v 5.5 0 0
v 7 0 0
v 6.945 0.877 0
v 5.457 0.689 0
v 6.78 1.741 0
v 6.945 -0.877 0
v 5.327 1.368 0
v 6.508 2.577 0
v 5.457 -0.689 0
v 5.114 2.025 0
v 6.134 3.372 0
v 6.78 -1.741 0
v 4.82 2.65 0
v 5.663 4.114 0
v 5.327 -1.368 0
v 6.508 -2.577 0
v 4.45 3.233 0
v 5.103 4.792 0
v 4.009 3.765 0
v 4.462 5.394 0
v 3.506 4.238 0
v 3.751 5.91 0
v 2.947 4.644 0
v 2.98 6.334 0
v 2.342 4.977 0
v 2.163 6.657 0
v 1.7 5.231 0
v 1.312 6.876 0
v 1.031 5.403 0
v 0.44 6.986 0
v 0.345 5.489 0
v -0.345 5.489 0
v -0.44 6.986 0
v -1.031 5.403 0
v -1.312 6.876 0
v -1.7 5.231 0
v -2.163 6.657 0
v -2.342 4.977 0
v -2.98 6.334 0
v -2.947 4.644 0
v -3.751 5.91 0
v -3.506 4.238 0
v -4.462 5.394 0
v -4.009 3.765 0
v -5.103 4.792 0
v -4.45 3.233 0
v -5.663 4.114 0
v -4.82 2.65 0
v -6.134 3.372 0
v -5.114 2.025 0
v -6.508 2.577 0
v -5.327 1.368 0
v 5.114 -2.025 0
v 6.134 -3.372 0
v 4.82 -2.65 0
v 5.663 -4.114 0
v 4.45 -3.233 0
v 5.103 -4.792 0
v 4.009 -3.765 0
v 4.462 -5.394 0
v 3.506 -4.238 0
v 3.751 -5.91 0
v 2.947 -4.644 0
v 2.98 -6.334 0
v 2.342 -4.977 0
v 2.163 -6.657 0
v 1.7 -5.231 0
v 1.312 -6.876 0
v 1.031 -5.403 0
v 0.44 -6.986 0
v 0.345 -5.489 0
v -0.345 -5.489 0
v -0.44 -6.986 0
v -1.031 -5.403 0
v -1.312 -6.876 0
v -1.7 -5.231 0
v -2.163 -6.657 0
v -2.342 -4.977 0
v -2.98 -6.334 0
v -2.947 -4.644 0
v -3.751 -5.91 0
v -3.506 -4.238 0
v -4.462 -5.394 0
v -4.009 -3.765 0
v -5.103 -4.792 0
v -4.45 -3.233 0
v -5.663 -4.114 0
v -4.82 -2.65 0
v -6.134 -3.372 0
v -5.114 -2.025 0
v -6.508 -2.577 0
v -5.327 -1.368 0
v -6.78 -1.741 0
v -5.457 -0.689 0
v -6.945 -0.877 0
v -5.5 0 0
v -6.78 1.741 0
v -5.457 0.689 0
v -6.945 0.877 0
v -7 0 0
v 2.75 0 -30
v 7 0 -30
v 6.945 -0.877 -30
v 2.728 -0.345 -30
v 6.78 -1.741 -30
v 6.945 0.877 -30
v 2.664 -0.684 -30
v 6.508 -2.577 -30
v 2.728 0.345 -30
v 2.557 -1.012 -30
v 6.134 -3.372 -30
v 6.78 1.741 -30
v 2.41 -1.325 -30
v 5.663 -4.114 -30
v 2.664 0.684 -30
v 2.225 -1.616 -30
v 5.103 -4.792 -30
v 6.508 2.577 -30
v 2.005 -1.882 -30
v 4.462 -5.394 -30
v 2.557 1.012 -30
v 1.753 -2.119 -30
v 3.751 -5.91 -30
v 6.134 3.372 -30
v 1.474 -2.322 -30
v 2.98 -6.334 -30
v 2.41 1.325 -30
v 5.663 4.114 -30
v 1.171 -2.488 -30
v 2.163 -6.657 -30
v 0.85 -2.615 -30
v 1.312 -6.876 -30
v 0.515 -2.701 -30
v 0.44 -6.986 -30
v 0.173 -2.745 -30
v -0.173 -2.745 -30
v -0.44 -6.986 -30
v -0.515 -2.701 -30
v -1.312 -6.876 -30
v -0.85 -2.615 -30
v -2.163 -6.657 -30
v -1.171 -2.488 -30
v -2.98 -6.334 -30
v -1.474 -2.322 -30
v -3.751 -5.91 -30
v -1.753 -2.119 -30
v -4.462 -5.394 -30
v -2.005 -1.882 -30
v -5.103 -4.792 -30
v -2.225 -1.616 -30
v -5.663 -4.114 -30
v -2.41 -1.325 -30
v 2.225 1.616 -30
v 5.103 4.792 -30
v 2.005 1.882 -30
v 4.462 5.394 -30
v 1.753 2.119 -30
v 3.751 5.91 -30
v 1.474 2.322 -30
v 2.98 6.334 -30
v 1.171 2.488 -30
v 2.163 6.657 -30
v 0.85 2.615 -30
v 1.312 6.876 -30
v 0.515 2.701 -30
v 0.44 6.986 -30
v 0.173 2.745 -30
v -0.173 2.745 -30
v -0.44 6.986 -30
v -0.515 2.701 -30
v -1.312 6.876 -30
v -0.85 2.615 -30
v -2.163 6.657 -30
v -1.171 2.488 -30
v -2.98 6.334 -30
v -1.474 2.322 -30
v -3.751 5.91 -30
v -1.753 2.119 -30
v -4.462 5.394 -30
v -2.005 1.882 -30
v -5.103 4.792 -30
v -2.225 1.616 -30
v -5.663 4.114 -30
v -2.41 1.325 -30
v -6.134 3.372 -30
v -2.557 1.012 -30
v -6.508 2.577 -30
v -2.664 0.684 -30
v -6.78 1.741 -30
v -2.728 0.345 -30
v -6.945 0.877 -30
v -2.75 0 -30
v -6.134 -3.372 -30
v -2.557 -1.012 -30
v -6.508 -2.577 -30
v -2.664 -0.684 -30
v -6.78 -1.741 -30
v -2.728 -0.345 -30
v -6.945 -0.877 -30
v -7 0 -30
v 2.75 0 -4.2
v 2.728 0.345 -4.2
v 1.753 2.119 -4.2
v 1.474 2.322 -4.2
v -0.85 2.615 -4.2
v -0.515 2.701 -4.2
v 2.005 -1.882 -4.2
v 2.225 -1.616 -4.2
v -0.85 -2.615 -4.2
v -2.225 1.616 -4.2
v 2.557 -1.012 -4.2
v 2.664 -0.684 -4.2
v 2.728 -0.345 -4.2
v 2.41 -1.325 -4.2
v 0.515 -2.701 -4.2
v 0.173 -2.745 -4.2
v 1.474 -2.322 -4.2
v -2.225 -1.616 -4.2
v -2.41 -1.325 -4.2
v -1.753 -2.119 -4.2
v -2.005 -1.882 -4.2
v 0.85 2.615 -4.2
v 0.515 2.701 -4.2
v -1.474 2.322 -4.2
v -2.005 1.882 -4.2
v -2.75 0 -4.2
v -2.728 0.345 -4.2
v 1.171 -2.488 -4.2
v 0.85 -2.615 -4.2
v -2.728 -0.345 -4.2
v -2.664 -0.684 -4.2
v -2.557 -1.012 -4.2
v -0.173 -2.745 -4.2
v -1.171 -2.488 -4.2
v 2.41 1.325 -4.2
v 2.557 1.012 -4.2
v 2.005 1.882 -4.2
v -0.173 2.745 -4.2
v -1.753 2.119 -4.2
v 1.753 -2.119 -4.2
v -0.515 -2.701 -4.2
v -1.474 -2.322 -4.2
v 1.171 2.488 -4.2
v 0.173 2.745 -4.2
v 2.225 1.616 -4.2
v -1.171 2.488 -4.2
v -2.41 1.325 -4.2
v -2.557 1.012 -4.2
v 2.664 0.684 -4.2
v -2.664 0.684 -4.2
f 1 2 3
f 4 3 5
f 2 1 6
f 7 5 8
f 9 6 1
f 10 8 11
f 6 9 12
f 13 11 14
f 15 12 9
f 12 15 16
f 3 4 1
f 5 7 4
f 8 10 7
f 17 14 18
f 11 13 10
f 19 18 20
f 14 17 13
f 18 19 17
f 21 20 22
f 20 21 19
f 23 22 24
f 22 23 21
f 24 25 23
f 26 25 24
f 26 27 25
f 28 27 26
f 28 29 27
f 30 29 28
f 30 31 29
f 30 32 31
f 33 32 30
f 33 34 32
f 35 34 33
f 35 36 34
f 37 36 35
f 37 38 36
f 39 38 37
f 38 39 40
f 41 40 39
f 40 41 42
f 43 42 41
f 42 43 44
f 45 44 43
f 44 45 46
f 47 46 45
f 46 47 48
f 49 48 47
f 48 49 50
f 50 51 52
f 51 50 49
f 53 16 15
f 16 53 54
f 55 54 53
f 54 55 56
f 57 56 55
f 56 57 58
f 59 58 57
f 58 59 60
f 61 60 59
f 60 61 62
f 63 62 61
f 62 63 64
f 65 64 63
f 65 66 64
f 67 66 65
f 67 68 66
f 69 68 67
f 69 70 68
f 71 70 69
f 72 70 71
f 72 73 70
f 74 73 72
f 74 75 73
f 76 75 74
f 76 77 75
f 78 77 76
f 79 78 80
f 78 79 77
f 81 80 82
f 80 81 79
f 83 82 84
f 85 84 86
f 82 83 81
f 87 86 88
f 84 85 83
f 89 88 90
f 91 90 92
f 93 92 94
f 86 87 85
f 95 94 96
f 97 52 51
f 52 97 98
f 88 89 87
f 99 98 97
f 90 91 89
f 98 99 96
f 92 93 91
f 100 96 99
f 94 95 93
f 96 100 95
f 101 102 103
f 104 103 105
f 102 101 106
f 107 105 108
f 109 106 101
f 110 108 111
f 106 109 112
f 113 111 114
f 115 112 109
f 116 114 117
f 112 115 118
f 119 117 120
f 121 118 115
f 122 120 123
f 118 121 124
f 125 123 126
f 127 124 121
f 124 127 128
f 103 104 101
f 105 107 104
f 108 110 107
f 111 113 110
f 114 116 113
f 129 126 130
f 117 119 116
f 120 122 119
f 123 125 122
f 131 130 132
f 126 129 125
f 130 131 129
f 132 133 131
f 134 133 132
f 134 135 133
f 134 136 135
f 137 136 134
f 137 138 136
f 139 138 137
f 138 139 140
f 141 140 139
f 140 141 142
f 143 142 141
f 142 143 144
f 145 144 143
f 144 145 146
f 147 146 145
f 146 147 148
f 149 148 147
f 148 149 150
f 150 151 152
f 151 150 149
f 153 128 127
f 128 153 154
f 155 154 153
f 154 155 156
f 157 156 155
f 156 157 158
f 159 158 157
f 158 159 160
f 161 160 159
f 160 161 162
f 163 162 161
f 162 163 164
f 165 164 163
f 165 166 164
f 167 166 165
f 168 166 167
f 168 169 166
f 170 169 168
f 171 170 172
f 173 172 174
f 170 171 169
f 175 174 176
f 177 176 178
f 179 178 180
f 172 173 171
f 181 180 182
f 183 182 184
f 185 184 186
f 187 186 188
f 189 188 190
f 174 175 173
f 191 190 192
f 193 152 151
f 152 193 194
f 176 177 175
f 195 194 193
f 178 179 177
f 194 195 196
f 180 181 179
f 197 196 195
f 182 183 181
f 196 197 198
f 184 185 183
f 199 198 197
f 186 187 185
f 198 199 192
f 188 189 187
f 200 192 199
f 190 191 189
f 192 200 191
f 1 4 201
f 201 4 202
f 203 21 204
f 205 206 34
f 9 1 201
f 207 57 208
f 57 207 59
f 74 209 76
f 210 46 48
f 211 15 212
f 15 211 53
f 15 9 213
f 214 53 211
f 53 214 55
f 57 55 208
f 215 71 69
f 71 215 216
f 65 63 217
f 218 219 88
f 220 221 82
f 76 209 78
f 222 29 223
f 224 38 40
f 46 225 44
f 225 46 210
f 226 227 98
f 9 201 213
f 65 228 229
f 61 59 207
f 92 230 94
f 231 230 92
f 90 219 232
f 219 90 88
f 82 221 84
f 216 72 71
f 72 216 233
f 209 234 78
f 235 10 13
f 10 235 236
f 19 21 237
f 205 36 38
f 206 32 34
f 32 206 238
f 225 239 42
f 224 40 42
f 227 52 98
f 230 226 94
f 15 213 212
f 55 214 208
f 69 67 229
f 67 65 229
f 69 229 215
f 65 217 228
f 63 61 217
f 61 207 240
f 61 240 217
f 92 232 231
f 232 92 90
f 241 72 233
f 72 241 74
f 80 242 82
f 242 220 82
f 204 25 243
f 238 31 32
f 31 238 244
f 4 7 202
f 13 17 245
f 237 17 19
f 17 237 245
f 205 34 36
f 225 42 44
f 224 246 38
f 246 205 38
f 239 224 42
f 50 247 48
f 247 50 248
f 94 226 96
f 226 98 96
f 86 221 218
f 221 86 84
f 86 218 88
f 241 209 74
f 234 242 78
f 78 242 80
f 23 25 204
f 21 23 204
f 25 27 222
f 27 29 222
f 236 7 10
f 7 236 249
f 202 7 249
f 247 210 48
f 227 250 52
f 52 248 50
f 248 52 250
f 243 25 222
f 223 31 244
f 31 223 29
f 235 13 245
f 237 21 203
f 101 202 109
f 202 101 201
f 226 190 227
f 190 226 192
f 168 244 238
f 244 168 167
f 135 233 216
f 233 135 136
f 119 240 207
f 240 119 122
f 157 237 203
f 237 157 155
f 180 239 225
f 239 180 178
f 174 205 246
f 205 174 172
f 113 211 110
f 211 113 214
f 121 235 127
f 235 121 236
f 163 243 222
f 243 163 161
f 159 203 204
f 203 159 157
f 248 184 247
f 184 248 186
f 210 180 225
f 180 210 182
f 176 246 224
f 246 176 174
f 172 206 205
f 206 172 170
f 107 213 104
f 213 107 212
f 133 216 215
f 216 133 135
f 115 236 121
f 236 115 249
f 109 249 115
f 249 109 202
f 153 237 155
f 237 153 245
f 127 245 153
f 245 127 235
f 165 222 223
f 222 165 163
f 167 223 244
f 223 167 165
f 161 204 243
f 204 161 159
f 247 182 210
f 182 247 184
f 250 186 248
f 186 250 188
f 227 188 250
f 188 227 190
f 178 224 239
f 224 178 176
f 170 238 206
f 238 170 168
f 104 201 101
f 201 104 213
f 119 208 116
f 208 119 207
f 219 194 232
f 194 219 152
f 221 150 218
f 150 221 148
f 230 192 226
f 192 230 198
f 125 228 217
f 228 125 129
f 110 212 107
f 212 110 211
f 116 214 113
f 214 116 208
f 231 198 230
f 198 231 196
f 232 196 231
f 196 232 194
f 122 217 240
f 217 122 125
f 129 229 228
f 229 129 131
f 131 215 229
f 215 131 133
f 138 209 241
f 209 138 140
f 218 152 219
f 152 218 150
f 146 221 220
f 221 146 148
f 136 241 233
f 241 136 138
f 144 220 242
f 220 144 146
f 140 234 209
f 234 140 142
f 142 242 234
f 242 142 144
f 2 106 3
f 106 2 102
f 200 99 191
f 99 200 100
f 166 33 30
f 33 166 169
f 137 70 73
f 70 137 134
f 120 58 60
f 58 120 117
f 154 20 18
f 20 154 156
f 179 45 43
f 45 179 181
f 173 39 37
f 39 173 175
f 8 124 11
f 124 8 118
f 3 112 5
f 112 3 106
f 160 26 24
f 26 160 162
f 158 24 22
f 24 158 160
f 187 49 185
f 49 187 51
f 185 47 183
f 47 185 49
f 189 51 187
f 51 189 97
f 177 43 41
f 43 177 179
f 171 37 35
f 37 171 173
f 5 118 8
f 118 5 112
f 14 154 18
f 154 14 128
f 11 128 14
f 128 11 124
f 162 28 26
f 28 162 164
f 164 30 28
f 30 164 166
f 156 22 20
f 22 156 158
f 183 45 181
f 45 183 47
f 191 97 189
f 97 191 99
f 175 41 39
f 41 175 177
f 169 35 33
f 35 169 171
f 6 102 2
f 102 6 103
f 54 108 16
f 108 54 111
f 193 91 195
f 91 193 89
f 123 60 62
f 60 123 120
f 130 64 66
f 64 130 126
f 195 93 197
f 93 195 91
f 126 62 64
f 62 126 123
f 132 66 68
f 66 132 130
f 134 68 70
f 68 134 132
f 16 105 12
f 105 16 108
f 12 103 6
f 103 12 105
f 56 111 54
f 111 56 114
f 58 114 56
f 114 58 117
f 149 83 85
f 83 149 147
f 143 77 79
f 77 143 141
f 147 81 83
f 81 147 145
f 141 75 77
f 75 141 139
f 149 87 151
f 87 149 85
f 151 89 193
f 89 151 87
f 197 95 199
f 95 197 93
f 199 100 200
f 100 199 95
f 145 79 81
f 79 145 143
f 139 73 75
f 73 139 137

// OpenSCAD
$fn = 50;


difference() {
	union() {
		translate(v = [0, 0, -30.0000000000]) {
			cylinder(h = 30, r = 7.0000000000);
		}
		cylinder(h = 0, r = 17.0000000000);
	}
	union() {
		translate(v = [0, 0, 0]) {
			rotate(a = [0, 0, 0]) {
				difference() {
					union() {
						#translate(v = [0, 0, -30.0000000000]) {
							cylinder(h = 30, r = 2.2500000000);
						}
						#translate(v = [0, 0, -4.2000000000]) {
							cylinder(h = 4.2000000000, r1 = 2.7500000000, r2 = 5.5000000000);
						}
						#translate(v = [0, 0, -30.0000000000]) {
							cylinder(h = 30, r = 2.7500000000);
						}
						#translate(v = [0, 0, -30.0000000000]) {
							cylinder(h = 30, r = 2.2500000000);
						}
					}
					union();
				}
			}
		}
	}
}
